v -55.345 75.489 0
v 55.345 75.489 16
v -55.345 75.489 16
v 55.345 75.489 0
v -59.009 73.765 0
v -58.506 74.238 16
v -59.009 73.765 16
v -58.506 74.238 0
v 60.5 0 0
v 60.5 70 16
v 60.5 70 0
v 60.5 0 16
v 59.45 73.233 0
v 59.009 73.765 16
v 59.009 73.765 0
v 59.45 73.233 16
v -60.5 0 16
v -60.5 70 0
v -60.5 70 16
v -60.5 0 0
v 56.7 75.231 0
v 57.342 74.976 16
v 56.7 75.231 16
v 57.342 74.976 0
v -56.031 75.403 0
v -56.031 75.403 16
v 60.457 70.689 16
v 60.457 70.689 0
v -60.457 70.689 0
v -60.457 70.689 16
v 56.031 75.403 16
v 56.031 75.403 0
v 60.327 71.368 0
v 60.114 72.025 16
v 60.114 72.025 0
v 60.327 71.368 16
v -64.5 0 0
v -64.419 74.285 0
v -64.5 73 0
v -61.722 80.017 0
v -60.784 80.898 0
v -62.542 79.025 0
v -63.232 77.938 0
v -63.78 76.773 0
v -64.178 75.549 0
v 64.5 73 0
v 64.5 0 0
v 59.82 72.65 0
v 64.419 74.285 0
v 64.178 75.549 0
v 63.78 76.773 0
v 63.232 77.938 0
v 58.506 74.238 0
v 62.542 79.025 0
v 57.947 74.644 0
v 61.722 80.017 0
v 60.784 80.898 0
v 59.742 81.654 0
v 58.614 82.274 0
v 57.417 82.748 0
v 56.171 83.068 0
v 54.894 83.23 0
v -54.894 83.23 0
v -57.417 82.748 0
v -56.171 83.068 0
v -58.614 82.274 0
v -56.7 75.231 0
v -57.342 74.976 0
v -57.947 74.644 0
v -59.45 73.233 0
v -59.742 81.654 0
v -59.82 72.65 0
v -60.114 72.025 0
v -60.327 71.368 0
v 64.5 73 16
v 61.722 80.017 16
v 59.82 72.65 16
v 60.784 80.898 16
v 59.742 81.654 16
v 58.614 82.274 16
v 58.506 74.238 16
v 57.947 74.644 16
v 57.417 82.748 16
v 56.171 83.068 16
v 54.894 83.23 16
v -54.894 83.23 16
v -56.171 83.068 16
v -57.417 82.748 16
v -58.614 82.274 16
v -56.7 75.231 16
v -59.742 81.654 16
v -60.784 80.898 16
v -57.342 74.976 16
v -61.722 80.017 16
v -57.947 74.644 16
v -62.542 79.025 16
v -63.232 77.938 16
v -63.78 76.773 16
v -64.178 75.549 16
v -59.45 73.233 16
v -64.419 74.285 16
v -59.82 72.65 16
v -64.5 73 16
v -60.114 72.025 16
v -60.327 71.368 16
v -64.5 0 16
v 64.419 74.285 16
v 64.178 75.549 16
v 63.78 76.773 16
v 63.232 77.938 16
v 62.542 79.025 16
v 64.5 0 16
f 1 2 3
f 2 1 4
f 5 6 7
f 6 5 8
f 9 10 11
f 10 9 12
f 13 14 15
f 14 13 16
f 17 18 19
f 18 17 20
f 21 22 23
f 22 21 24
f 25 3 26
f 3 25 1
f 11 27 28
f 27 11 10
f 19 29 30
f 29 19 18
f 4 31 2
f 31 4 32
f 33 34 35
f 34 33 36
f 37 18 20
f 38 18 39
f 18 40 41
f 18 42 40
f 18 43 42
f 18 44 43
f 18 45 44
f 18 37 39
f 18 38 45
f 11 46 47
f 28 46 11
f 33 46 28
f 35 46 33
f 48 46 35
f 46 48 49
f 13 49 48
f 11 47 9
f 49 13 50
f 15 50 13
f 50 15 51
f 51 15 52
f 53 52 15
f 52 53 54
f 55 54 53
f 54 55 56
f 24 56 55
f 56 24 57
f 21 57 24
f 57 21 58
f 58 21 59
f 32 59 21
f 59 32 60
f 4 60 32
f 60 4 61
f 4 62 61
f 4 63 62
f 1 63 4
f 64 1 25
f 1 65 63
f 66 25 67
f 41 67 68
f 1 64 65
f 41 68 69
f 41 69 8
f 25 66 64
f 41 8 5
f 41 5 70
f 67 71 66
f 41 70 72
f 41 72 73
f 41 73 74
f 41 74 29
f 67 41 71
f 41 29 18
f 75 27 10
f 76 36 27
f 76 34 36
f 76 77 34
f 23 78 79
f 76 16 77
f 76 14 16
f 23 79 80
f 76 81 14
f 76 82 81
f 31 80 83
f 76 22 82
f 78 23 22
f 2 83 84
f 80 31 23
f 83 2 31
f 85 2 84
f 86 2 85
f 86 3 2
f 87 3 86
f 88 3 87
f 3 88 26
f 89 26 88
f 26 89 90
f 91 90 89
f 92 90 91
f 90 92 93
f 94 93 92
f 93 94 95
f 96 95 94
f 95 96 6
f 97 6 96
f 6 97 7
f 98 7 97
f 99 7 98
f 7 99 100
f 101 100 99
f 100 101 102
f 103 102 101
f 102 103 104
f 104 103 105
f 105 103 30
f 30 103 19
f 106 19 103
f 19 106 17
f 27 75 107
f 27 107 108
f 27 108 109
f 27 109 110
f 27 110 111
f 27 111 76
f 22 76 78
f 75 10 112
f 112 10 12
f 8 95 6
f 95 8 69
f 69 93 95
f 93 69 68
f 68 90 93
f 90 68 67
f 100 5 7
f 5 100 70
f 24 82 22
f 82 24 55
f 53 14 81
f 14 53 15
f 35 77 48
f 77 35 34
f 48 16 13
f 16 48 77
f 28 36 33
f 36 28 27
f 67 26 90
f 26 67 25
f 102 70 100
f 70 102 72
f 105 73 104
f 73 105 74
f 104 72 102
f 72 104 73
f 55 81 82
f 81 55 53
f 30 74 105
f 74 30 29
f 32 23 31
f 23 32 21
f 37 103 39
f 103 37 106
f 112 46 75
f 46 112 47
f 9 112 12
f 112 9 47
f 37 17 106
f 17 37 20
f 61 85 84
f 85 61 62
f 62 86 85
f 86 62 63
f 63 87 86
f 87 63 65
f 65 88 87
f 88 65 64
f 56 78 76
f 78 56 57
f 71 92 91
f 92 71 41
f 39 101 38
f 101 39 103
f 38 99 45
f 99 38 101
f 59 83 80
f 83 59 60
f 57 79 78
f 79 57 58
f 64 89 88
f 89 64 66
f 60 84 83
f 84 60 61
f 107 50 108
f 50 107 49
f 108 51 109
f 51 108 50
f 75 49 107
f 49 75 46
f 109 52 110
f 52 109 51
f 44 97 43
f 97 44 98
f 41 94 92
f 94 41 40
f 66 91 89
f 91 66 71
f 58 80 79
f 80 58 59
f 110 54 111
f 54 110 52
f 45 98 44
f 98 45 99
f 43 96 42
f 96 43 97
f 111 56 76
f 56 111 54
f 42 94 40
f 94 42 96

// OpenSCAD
$fn = 50;


difference() {
	union() {
		hull() {
			translate(v = [-54.2500000000, 73.0000000000, 0]) {
				cylinder(h = 16.0000000000, r = 10.2500000000);
			}
			translate(v = [54.2500000000, 73.0000000000, 0]) {
				cylinder(h = 16.0000000000, r = 10.2500000000);
			}
			translate(v = [-54.2500000000, -73.0000000000, 0]) {
				cylinder(h = 16.0000000000, r = 10.2500000000);
			}
			translate(v = [54.2500000000, -73.0000000000, 0]) {
				cylinder(h = 16.0000000000, r = 10.2500000000);
			}
		}
	}
	union() {
		hull() {
			translate(v = [-55.0000000000, 70.0000000000, 0]) {
				cylinder(h = 16.0000000000, r = 5.5000000000);
			}
			translate(v = [55.0000000000, 70.0000000000, 0]) {
				cylinder(h = 16.0000000000, r = 5.5000000000);
			}
			translate(v = [-55.0000000000, -70.0000000000, 0]) {
				cylinder(h = 16.0000000000, r = 5.5000000000);
			}
			translate(v = [55.0000000000, -70.0000000000, 0]) {
				cylinder(h = 16.0000000000, r = 5.5000000000);
			}
		}
		#translate(v = [-64.5000000000, -166.5000000000, 0]) {
			cube(size = [129.0000000000, 166.5000000000, 16.0000000000]);
		}
	}
}
